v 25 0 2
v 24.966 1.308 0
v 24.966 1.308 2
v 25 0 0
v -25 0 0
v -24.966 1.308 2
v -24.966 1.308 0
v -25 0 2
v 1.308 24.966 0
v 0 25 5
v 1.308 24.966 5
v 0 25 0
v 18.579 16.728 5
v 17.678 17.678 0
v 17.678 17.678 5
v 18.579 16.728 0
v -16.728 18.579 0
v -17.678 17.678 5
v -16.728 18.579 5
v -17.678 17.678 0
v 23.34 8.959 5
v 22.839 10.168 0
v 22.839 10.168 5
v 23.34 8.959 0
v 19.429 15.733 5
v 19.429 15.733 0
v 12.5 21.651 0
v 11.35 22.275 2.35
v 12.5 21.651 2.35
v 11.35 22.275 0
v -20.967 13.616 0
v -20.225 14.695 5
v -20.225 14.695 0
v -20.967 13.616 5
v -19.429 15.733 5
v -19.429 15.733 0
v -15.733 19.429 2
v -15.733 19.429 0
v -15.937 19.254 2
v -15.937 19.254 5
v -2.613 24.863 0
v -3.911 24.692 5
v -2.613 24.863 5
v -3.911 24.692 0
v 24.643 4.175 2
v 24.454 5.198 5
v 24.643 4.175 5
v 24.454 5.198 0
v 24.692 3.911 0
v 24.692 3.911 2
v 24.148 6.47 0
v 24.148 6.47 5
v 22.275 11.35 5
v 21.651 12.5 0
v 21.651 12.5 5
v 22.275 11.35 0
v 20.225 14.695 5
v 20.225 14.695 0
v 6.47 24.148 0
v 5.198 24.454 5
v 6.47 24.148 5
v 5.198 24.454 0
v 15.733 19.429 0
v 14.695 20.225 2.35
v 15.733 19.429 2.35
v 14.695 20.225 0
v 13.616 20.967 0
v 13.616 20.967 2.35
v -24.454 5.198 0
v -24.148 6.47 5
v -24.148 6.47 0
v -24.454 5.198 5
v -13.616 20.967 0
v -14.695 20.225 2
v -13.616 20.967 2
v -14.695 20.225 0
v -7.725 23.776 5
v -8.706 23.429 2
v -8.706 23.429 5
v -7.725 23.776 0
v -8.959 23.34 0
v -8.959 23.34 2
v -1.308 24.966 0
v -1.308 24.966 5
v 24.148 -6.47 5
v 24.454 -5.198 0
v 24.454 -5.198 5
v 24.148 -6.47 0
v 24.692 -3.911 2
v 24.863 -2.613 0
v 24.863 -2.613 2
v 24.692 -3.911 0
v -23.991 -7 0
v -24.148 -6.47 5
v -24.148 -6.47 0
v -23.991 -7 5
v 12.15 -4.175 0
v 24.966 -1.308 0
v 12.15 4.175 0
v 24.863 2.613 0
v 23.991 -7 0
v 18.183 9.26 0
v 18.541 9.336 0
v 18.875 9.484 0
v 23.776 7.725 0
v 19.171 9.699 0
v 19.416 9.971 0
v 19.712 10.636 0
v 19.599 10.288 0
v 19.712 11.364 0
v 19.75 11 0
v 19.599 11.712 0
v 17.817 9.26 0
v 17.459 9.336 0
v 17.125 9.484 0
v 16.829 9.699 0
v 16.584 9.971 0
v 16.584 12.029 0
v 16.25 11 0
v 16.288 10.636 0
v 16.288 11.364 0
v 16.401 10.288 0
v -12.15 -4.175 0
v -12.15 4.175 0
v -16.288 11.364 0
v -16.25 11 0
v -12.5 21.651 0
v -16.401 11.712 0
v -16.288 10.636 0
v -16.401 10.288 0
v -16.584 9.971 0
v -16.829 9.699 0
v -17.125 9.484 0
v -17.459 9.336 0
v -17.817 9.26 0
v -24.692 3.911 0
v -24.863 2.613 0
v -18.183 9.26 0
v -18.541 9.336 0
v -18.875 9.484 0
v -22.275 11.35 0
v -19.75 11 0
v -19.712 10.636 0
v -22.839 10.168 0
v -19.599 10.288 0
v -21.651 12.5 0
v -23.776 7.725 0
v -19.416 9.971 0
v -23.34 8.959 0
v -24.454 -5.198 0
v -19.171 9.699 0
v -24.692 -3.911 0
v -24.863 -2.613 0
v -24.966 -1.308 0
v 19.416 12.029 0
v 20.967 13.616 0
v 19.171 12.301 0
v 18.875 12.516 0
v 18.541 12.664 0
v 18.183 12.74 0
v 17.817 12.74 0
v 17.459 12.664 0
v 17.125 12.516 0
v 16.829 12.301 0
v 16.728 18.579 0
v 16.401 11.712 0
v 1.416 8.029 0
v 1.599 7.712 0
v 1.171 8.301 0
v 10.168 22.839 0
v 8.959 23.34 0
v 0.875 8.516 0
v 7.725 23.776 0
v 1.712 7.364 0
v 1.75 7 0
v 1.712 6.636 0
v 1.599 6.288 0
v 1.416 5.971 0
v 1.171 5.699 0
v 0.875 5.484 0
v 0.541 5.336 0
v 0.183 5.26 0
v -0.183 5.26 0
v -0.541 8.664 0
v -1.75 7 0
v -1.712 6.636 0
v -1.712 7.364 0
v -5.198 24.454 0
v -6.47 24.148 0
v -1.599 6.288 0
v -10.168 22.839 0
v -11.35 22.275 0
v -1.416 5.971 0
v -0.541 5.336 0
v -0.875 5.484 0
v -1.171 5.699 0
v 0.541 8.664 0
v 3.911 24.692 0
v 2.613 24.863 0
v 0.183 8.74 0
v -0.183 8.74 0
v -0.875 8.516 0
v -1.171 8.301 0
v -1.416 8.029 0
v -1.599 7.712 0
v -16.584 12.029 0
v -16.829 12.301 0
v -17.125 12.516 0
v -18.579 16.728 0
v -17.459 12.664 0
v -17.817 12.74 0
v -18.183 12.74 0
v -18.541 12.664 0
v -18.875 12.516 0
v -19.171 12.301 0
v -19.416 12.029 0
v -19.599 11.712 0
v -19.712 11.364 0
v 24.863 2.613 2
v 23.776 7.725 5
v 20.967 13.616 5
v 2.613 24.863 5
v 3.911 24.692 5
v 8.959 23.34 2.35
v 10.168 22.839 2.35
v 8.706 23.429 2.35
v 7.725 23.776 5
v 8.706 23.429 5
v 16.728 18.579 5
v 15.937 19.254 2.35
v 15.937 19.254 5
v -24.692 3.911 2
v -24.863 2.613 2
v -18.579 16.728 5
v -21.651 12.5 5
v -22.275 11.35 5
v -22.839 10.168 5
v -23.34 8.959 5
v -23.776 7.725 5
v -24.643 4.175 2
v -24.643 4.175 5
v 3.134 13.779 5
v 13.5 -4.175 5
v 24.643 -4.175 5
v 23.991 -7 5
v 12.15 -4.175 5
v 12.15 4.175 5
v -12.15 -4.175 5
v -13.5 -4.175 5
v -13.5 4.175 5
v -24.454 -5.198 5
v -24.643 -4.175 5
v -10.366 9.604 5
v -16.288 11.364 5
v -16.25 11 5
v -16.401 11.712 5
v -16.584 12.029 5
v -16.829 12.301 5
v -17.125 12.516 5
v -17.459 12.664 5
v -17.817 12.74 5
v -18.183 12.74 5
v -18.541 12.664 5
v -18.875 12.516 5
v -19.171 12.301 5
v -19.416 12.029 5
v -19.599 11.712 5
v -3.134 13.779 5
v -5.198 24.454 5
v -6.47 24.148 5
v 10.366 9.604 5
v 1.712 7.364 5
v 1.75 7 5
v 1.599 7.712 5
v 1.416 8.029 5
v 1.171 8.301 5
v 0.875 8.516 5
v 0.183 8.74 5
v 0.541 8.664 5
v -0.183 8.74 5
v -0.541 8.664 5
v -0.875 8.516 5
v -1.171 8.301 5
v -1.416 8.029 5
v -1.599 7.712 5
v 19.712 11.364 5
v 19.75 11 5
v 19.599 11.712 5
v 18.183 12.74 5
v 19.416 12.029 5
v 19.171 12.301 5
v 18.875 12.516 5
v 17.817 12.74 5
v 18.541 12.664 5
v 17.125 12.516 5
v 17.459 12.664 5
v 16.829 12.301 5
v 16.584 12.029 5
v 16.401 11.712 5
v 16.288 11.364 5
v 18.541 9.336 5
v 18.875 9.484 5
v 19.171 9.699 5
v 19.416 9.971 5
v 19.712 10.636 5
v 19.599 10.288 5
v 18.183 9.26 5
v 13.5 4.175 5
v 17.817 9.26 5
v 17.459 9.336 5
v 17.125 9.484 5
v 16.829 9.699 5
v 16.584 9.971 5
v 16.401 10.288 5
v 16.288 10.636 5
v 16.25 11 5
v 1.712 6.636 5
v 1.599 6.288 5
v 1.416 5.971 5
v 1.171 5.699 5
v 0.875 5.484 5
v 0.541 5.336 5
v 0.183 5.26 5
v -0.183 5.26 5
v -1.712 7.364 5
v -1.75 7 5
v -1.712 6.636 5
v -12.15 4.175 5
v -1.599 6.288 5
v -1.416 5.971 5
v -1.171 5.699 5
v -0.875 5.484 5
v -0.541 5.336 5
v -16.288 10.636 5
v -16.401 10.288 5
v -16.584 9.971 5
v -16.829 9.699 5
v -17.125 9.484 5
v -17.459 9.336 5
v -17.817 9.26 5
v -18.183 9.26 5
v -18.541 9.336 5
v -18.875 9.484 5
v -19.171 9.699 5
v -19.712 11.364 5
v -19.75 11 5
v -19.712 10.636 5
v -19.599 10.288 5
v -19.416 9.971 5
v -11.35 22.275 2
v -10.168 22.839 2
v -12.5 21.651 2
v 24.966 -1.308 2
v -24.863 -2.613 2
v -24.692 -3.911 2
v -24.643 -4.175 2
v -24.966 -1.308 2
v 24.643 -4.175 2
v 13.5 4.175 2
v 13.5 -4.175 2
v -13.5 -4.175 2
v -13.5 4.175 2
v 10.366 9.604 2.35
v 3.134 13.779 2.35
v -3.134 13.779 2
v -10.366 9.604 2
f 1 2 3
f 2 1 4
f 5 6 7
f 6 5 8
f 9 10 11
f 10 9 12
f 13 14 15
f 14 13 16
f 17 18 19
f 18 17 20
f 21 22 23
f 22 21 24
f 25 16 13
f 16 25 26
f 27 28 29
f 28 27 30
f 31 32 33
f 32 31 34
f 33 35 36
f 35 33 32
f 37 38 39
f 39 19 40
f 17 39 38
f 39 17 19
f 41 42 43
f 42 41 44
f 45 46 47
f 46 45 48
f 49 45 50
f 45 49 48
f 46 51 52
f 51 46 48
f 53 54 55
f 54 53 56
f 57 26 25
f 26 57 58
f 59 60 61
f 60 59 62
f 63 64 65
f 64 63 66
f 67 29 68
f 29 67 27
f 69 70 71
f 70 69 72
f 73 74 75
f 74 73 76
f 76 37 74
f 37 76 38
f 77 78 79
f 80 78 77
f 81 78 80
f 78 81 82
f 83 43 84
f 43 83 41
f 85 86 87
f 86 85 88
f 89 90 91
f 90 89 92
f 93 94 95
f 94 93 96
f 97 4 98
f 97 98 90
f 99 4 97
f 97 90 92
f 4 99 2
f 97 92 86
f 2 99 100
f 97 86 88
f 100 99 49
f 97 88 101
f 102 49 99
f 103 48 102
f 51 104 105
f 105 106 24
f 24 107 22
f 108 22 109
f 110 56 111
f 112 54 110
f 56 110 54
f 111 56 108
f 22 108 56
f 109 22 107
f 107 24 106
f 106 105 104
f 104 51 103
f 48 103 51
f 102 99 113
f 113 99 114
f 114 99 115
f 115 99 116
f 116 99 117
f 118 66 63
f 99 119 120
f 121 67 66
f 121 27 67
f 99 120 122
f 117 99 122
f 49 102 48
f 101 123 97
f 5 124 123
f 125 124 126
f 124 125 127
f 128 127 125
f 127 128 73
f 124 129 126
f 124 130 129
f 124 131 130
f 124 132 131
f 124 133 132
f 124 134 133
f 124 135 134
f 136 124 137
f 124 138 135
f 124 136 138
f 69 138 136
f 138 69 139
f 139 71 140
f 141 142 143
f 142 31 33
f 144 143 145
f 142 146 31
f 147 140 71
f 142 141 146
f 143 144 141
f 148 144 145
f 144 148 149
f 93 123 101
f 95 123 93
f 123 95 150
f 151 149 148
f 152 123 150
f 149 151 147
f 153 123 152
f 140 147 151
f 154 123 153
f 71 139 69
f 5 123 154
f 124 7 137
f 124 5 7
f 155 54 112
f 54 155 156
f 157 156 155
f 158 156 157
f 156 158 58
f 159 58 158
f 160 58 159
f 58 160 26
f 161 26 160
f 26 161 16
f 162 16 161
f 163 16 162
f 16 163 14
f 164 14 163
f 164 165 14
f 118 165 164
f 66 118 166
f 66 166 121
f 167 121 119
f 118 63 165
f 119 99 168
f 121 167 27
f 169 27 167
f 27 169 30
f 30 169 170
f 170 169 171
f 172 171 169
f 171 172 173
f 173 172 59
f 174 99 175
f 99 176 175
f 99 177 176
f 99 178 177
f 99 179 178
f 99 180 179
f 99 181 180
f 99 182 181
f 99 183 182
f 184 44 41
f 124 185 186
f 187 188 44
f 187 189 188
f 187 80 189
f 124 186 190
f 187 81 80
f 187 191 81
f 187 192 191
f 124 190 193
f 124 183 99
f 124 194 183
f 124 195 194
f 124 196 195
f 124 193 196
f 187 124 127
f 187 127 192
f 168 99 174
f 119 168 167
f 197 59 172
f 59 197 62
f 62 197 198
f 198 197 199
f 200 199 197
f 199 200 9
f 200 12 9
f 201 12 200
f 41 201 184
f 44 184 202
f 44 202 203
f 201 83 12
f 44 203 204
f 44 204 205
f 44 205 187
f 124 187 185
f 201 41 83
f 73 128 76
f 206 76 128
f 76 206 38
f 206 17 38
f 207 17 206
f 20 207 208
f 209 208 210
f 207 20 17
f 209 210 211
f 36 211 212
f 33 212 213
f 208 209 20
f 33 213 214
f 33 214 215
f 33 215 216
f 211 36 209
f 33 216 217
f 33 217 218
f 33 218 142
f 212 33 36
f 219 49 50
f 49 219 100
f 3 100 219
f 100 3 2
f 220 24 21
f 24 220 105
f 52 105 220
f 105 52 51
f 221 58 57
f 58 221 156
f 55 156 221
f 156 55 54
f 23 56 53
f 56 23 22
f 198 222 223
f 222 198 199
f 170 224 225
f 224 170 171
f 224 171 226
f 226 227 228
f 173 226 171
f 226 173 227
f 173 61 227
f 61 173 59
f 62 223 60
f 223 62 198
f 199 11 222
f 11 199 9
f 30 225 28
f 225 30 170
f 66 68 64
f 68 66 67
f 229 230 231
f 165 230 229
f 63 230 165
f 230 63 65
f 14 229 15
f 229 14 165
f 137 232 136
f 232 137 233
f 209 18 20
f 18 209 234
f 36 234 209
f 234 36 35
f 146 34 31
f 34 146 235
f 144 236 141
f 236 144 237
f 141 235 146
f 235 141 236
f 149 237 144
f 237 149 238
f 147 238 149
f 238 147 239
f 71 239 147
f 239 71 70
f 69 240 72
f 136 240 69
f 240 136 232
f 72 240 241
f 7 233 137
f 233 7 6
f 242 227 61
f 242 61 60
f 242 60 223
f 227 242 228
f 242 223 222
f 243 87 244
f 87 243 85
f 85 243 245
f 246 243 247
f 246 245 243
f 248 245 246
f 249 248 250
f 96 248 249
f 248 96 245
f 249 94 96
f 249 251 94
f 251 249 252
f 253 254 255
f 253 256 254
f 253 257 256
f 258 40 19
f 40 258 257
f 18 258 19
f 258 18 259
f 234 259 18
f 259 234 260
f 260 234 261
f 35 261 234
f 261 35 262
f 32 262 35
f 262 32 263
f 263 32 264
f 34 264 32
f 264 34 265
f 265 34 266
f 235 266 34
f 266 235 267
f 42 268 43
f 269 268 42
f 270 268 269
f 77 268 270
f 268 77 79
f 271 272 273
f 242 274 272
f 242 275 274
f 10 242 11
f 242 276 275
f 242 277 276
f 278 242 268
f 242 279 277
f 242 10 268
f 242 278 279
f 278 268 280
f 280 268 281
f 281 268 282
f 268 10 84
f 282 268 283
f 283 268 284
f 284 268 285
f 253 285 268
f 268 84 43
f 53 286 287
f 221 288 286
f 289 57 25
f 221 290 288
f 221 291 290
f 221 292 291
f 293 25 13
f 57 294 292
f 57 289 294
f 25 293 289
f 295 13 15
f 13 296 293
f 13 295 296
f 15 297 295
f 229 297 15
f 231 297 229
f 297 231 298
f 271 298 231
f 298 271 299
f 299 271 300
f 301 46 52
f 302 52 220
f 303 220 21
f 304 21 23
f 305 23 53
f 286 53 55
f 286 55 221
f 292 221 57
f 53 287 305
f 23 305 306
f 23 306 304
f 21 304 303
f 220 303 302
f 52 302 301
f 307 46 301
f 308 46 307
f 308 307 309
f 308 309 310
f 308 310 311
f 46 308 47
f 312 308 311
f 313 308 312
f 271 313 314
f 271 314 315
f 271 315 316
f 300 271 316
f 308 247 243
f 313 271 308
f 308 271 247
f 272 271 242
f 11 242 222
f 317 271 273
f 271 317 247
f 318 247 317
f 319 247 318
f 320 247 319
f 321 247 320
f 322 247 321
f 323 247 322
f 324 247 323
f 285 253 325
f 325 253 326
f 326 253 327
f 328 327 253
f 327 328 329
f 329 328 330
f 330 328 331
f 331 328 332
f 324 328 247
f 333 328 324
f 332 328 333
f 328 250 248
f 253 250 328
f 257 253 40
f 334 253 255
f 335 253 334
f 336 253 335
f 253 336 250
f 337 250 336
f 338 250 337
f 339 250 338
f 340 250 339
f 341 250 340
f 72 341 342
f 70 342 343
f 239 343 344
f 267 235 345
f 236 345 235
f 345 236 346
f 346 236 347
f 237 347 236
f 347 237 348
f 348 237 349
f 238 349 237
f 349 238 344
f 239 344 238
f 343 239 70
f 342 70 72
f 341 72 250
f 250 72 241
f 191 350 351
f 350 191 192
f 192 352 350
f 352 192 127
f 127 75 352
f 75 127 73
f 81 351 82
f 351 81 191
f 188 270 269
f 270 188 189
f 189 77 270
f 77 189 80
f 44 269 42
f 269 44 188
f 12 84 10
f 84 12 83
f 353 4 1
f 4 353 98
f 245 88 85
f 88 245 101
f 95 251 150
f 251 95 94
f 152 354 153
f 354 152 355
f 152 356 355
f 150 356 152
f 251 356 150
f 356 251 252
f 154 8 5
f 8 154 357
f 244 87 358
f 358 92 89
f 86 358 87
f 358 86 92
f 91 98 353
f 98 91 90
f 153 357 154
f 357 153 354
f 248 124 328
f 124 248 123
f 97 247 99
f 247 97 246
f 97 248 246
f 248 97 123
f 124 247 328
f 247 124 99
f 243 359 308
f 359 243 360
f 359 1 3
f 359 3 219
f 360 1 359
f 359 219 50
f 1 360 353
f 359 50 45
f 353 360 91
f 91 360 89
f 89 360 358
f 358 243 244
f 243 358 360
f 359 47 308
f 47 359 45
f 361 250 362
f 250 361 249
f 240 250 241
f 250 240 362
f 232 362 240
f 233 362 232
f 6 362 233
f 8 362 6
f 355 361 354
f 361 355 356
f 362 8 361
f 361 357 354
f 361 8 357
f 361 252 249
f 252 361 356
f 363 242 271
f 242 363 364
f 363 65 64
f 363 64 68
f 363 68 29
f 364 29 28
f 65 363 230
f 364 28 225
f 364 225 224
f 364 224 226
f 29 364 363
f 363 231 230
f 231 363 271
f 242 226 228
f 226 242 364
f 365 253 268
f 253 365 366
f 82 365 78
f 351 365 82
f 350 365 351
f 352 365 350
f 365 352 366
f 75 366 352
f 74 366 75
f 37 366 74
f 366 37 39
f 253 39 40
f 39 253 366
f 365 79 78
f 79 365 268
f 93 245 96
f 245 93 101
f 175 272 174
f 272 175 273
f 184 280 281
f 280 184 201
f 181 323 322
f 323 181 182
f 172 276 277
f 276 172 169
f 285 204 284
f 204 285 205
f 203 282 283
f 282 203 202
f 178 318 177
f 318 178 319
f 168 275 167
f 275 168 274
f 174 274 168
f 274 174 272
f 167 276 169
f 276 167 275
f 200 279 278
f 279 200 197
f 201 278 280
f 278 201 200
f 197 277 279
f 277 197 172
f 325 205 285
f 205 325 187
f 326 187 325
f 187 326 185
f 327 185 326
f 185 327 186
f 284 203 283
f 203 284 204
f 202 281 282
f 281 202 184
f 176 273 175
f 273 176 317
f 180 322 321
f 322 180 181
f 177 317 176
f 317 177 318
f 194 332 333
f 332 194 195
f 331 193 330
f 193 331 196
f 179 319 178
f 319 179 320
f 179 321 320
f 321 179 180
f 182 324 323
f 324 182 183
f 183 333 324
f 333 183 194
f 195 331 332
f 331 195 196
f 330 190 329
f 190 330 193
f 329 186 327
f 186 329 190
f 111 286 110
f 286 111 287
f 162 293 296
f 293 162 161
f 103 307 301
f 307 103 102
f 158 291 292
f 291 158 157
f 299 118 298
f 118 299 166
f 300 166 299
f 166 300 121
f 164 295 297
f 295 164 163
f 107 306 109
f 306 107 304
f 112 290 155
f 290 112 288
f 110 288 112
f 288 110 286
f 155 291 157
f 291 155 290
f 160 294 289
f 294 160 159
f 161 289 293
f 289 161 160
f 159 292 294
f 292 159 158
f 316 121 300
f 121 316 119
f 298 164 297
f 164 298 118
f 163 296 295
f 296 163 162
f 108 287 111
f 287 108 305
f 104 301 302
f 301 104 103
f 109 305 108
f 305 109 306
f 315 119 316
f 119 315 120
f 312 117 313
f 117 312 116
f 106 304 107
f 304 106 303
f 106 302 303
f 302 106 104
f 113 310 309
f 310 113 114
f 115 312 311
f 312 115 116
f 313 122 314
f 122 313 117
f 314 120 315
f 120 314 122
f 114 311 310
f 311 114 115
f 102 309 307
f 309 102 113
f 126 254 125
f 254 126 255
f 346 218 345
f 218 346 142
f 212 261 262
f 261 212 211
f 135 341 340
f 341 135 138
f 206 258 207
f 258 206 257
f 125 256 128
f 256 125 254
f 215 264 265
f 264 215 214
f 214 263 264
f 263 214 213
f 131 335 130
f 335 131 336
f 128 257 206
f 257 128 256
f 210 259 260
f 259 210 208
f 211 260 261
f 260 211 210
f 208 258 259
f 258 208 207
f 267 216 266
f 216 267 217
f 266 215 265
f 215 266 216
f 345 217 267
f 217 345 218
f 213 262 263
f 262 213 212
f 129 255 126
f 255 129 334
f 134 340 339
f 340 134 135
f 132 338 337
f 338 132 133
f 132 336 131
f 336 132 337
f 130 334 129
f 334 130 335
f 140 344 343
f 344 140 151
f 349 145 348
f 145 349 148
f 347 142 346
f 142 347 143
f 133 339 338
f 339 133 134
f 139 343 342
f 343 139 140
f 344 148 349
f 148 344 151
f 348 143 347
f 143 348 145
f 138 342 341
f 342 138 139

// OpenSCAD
difference(){
cylinder(d=50,h=5,$fn=120);
cube([24.3,8.35,12],center=true);
translate([25.5,0,8])cube([24,8.35,12],center=true);
translate([-25.5,0,8])cube([24,8.35,12],center=true);
rotate([0,0,60])translate([25.5,0,8.35])
cube([24,8.35,12],center=true);
rotate([0,0,-60])translate([-25.5,0,8])
cube([24,8.35,12],center=true);
translate([0,-31,0])cube([54,48,12],center=true);
translate([0,7,-1])cylinder(d=3.5,h=10,$fn=30);
translate([18,11,-1])cylinder(d=3.5,h=10,$fn=30);
translate([-18,11,-1])cylinder(d=3.5,h=10,$fn=30);
}
